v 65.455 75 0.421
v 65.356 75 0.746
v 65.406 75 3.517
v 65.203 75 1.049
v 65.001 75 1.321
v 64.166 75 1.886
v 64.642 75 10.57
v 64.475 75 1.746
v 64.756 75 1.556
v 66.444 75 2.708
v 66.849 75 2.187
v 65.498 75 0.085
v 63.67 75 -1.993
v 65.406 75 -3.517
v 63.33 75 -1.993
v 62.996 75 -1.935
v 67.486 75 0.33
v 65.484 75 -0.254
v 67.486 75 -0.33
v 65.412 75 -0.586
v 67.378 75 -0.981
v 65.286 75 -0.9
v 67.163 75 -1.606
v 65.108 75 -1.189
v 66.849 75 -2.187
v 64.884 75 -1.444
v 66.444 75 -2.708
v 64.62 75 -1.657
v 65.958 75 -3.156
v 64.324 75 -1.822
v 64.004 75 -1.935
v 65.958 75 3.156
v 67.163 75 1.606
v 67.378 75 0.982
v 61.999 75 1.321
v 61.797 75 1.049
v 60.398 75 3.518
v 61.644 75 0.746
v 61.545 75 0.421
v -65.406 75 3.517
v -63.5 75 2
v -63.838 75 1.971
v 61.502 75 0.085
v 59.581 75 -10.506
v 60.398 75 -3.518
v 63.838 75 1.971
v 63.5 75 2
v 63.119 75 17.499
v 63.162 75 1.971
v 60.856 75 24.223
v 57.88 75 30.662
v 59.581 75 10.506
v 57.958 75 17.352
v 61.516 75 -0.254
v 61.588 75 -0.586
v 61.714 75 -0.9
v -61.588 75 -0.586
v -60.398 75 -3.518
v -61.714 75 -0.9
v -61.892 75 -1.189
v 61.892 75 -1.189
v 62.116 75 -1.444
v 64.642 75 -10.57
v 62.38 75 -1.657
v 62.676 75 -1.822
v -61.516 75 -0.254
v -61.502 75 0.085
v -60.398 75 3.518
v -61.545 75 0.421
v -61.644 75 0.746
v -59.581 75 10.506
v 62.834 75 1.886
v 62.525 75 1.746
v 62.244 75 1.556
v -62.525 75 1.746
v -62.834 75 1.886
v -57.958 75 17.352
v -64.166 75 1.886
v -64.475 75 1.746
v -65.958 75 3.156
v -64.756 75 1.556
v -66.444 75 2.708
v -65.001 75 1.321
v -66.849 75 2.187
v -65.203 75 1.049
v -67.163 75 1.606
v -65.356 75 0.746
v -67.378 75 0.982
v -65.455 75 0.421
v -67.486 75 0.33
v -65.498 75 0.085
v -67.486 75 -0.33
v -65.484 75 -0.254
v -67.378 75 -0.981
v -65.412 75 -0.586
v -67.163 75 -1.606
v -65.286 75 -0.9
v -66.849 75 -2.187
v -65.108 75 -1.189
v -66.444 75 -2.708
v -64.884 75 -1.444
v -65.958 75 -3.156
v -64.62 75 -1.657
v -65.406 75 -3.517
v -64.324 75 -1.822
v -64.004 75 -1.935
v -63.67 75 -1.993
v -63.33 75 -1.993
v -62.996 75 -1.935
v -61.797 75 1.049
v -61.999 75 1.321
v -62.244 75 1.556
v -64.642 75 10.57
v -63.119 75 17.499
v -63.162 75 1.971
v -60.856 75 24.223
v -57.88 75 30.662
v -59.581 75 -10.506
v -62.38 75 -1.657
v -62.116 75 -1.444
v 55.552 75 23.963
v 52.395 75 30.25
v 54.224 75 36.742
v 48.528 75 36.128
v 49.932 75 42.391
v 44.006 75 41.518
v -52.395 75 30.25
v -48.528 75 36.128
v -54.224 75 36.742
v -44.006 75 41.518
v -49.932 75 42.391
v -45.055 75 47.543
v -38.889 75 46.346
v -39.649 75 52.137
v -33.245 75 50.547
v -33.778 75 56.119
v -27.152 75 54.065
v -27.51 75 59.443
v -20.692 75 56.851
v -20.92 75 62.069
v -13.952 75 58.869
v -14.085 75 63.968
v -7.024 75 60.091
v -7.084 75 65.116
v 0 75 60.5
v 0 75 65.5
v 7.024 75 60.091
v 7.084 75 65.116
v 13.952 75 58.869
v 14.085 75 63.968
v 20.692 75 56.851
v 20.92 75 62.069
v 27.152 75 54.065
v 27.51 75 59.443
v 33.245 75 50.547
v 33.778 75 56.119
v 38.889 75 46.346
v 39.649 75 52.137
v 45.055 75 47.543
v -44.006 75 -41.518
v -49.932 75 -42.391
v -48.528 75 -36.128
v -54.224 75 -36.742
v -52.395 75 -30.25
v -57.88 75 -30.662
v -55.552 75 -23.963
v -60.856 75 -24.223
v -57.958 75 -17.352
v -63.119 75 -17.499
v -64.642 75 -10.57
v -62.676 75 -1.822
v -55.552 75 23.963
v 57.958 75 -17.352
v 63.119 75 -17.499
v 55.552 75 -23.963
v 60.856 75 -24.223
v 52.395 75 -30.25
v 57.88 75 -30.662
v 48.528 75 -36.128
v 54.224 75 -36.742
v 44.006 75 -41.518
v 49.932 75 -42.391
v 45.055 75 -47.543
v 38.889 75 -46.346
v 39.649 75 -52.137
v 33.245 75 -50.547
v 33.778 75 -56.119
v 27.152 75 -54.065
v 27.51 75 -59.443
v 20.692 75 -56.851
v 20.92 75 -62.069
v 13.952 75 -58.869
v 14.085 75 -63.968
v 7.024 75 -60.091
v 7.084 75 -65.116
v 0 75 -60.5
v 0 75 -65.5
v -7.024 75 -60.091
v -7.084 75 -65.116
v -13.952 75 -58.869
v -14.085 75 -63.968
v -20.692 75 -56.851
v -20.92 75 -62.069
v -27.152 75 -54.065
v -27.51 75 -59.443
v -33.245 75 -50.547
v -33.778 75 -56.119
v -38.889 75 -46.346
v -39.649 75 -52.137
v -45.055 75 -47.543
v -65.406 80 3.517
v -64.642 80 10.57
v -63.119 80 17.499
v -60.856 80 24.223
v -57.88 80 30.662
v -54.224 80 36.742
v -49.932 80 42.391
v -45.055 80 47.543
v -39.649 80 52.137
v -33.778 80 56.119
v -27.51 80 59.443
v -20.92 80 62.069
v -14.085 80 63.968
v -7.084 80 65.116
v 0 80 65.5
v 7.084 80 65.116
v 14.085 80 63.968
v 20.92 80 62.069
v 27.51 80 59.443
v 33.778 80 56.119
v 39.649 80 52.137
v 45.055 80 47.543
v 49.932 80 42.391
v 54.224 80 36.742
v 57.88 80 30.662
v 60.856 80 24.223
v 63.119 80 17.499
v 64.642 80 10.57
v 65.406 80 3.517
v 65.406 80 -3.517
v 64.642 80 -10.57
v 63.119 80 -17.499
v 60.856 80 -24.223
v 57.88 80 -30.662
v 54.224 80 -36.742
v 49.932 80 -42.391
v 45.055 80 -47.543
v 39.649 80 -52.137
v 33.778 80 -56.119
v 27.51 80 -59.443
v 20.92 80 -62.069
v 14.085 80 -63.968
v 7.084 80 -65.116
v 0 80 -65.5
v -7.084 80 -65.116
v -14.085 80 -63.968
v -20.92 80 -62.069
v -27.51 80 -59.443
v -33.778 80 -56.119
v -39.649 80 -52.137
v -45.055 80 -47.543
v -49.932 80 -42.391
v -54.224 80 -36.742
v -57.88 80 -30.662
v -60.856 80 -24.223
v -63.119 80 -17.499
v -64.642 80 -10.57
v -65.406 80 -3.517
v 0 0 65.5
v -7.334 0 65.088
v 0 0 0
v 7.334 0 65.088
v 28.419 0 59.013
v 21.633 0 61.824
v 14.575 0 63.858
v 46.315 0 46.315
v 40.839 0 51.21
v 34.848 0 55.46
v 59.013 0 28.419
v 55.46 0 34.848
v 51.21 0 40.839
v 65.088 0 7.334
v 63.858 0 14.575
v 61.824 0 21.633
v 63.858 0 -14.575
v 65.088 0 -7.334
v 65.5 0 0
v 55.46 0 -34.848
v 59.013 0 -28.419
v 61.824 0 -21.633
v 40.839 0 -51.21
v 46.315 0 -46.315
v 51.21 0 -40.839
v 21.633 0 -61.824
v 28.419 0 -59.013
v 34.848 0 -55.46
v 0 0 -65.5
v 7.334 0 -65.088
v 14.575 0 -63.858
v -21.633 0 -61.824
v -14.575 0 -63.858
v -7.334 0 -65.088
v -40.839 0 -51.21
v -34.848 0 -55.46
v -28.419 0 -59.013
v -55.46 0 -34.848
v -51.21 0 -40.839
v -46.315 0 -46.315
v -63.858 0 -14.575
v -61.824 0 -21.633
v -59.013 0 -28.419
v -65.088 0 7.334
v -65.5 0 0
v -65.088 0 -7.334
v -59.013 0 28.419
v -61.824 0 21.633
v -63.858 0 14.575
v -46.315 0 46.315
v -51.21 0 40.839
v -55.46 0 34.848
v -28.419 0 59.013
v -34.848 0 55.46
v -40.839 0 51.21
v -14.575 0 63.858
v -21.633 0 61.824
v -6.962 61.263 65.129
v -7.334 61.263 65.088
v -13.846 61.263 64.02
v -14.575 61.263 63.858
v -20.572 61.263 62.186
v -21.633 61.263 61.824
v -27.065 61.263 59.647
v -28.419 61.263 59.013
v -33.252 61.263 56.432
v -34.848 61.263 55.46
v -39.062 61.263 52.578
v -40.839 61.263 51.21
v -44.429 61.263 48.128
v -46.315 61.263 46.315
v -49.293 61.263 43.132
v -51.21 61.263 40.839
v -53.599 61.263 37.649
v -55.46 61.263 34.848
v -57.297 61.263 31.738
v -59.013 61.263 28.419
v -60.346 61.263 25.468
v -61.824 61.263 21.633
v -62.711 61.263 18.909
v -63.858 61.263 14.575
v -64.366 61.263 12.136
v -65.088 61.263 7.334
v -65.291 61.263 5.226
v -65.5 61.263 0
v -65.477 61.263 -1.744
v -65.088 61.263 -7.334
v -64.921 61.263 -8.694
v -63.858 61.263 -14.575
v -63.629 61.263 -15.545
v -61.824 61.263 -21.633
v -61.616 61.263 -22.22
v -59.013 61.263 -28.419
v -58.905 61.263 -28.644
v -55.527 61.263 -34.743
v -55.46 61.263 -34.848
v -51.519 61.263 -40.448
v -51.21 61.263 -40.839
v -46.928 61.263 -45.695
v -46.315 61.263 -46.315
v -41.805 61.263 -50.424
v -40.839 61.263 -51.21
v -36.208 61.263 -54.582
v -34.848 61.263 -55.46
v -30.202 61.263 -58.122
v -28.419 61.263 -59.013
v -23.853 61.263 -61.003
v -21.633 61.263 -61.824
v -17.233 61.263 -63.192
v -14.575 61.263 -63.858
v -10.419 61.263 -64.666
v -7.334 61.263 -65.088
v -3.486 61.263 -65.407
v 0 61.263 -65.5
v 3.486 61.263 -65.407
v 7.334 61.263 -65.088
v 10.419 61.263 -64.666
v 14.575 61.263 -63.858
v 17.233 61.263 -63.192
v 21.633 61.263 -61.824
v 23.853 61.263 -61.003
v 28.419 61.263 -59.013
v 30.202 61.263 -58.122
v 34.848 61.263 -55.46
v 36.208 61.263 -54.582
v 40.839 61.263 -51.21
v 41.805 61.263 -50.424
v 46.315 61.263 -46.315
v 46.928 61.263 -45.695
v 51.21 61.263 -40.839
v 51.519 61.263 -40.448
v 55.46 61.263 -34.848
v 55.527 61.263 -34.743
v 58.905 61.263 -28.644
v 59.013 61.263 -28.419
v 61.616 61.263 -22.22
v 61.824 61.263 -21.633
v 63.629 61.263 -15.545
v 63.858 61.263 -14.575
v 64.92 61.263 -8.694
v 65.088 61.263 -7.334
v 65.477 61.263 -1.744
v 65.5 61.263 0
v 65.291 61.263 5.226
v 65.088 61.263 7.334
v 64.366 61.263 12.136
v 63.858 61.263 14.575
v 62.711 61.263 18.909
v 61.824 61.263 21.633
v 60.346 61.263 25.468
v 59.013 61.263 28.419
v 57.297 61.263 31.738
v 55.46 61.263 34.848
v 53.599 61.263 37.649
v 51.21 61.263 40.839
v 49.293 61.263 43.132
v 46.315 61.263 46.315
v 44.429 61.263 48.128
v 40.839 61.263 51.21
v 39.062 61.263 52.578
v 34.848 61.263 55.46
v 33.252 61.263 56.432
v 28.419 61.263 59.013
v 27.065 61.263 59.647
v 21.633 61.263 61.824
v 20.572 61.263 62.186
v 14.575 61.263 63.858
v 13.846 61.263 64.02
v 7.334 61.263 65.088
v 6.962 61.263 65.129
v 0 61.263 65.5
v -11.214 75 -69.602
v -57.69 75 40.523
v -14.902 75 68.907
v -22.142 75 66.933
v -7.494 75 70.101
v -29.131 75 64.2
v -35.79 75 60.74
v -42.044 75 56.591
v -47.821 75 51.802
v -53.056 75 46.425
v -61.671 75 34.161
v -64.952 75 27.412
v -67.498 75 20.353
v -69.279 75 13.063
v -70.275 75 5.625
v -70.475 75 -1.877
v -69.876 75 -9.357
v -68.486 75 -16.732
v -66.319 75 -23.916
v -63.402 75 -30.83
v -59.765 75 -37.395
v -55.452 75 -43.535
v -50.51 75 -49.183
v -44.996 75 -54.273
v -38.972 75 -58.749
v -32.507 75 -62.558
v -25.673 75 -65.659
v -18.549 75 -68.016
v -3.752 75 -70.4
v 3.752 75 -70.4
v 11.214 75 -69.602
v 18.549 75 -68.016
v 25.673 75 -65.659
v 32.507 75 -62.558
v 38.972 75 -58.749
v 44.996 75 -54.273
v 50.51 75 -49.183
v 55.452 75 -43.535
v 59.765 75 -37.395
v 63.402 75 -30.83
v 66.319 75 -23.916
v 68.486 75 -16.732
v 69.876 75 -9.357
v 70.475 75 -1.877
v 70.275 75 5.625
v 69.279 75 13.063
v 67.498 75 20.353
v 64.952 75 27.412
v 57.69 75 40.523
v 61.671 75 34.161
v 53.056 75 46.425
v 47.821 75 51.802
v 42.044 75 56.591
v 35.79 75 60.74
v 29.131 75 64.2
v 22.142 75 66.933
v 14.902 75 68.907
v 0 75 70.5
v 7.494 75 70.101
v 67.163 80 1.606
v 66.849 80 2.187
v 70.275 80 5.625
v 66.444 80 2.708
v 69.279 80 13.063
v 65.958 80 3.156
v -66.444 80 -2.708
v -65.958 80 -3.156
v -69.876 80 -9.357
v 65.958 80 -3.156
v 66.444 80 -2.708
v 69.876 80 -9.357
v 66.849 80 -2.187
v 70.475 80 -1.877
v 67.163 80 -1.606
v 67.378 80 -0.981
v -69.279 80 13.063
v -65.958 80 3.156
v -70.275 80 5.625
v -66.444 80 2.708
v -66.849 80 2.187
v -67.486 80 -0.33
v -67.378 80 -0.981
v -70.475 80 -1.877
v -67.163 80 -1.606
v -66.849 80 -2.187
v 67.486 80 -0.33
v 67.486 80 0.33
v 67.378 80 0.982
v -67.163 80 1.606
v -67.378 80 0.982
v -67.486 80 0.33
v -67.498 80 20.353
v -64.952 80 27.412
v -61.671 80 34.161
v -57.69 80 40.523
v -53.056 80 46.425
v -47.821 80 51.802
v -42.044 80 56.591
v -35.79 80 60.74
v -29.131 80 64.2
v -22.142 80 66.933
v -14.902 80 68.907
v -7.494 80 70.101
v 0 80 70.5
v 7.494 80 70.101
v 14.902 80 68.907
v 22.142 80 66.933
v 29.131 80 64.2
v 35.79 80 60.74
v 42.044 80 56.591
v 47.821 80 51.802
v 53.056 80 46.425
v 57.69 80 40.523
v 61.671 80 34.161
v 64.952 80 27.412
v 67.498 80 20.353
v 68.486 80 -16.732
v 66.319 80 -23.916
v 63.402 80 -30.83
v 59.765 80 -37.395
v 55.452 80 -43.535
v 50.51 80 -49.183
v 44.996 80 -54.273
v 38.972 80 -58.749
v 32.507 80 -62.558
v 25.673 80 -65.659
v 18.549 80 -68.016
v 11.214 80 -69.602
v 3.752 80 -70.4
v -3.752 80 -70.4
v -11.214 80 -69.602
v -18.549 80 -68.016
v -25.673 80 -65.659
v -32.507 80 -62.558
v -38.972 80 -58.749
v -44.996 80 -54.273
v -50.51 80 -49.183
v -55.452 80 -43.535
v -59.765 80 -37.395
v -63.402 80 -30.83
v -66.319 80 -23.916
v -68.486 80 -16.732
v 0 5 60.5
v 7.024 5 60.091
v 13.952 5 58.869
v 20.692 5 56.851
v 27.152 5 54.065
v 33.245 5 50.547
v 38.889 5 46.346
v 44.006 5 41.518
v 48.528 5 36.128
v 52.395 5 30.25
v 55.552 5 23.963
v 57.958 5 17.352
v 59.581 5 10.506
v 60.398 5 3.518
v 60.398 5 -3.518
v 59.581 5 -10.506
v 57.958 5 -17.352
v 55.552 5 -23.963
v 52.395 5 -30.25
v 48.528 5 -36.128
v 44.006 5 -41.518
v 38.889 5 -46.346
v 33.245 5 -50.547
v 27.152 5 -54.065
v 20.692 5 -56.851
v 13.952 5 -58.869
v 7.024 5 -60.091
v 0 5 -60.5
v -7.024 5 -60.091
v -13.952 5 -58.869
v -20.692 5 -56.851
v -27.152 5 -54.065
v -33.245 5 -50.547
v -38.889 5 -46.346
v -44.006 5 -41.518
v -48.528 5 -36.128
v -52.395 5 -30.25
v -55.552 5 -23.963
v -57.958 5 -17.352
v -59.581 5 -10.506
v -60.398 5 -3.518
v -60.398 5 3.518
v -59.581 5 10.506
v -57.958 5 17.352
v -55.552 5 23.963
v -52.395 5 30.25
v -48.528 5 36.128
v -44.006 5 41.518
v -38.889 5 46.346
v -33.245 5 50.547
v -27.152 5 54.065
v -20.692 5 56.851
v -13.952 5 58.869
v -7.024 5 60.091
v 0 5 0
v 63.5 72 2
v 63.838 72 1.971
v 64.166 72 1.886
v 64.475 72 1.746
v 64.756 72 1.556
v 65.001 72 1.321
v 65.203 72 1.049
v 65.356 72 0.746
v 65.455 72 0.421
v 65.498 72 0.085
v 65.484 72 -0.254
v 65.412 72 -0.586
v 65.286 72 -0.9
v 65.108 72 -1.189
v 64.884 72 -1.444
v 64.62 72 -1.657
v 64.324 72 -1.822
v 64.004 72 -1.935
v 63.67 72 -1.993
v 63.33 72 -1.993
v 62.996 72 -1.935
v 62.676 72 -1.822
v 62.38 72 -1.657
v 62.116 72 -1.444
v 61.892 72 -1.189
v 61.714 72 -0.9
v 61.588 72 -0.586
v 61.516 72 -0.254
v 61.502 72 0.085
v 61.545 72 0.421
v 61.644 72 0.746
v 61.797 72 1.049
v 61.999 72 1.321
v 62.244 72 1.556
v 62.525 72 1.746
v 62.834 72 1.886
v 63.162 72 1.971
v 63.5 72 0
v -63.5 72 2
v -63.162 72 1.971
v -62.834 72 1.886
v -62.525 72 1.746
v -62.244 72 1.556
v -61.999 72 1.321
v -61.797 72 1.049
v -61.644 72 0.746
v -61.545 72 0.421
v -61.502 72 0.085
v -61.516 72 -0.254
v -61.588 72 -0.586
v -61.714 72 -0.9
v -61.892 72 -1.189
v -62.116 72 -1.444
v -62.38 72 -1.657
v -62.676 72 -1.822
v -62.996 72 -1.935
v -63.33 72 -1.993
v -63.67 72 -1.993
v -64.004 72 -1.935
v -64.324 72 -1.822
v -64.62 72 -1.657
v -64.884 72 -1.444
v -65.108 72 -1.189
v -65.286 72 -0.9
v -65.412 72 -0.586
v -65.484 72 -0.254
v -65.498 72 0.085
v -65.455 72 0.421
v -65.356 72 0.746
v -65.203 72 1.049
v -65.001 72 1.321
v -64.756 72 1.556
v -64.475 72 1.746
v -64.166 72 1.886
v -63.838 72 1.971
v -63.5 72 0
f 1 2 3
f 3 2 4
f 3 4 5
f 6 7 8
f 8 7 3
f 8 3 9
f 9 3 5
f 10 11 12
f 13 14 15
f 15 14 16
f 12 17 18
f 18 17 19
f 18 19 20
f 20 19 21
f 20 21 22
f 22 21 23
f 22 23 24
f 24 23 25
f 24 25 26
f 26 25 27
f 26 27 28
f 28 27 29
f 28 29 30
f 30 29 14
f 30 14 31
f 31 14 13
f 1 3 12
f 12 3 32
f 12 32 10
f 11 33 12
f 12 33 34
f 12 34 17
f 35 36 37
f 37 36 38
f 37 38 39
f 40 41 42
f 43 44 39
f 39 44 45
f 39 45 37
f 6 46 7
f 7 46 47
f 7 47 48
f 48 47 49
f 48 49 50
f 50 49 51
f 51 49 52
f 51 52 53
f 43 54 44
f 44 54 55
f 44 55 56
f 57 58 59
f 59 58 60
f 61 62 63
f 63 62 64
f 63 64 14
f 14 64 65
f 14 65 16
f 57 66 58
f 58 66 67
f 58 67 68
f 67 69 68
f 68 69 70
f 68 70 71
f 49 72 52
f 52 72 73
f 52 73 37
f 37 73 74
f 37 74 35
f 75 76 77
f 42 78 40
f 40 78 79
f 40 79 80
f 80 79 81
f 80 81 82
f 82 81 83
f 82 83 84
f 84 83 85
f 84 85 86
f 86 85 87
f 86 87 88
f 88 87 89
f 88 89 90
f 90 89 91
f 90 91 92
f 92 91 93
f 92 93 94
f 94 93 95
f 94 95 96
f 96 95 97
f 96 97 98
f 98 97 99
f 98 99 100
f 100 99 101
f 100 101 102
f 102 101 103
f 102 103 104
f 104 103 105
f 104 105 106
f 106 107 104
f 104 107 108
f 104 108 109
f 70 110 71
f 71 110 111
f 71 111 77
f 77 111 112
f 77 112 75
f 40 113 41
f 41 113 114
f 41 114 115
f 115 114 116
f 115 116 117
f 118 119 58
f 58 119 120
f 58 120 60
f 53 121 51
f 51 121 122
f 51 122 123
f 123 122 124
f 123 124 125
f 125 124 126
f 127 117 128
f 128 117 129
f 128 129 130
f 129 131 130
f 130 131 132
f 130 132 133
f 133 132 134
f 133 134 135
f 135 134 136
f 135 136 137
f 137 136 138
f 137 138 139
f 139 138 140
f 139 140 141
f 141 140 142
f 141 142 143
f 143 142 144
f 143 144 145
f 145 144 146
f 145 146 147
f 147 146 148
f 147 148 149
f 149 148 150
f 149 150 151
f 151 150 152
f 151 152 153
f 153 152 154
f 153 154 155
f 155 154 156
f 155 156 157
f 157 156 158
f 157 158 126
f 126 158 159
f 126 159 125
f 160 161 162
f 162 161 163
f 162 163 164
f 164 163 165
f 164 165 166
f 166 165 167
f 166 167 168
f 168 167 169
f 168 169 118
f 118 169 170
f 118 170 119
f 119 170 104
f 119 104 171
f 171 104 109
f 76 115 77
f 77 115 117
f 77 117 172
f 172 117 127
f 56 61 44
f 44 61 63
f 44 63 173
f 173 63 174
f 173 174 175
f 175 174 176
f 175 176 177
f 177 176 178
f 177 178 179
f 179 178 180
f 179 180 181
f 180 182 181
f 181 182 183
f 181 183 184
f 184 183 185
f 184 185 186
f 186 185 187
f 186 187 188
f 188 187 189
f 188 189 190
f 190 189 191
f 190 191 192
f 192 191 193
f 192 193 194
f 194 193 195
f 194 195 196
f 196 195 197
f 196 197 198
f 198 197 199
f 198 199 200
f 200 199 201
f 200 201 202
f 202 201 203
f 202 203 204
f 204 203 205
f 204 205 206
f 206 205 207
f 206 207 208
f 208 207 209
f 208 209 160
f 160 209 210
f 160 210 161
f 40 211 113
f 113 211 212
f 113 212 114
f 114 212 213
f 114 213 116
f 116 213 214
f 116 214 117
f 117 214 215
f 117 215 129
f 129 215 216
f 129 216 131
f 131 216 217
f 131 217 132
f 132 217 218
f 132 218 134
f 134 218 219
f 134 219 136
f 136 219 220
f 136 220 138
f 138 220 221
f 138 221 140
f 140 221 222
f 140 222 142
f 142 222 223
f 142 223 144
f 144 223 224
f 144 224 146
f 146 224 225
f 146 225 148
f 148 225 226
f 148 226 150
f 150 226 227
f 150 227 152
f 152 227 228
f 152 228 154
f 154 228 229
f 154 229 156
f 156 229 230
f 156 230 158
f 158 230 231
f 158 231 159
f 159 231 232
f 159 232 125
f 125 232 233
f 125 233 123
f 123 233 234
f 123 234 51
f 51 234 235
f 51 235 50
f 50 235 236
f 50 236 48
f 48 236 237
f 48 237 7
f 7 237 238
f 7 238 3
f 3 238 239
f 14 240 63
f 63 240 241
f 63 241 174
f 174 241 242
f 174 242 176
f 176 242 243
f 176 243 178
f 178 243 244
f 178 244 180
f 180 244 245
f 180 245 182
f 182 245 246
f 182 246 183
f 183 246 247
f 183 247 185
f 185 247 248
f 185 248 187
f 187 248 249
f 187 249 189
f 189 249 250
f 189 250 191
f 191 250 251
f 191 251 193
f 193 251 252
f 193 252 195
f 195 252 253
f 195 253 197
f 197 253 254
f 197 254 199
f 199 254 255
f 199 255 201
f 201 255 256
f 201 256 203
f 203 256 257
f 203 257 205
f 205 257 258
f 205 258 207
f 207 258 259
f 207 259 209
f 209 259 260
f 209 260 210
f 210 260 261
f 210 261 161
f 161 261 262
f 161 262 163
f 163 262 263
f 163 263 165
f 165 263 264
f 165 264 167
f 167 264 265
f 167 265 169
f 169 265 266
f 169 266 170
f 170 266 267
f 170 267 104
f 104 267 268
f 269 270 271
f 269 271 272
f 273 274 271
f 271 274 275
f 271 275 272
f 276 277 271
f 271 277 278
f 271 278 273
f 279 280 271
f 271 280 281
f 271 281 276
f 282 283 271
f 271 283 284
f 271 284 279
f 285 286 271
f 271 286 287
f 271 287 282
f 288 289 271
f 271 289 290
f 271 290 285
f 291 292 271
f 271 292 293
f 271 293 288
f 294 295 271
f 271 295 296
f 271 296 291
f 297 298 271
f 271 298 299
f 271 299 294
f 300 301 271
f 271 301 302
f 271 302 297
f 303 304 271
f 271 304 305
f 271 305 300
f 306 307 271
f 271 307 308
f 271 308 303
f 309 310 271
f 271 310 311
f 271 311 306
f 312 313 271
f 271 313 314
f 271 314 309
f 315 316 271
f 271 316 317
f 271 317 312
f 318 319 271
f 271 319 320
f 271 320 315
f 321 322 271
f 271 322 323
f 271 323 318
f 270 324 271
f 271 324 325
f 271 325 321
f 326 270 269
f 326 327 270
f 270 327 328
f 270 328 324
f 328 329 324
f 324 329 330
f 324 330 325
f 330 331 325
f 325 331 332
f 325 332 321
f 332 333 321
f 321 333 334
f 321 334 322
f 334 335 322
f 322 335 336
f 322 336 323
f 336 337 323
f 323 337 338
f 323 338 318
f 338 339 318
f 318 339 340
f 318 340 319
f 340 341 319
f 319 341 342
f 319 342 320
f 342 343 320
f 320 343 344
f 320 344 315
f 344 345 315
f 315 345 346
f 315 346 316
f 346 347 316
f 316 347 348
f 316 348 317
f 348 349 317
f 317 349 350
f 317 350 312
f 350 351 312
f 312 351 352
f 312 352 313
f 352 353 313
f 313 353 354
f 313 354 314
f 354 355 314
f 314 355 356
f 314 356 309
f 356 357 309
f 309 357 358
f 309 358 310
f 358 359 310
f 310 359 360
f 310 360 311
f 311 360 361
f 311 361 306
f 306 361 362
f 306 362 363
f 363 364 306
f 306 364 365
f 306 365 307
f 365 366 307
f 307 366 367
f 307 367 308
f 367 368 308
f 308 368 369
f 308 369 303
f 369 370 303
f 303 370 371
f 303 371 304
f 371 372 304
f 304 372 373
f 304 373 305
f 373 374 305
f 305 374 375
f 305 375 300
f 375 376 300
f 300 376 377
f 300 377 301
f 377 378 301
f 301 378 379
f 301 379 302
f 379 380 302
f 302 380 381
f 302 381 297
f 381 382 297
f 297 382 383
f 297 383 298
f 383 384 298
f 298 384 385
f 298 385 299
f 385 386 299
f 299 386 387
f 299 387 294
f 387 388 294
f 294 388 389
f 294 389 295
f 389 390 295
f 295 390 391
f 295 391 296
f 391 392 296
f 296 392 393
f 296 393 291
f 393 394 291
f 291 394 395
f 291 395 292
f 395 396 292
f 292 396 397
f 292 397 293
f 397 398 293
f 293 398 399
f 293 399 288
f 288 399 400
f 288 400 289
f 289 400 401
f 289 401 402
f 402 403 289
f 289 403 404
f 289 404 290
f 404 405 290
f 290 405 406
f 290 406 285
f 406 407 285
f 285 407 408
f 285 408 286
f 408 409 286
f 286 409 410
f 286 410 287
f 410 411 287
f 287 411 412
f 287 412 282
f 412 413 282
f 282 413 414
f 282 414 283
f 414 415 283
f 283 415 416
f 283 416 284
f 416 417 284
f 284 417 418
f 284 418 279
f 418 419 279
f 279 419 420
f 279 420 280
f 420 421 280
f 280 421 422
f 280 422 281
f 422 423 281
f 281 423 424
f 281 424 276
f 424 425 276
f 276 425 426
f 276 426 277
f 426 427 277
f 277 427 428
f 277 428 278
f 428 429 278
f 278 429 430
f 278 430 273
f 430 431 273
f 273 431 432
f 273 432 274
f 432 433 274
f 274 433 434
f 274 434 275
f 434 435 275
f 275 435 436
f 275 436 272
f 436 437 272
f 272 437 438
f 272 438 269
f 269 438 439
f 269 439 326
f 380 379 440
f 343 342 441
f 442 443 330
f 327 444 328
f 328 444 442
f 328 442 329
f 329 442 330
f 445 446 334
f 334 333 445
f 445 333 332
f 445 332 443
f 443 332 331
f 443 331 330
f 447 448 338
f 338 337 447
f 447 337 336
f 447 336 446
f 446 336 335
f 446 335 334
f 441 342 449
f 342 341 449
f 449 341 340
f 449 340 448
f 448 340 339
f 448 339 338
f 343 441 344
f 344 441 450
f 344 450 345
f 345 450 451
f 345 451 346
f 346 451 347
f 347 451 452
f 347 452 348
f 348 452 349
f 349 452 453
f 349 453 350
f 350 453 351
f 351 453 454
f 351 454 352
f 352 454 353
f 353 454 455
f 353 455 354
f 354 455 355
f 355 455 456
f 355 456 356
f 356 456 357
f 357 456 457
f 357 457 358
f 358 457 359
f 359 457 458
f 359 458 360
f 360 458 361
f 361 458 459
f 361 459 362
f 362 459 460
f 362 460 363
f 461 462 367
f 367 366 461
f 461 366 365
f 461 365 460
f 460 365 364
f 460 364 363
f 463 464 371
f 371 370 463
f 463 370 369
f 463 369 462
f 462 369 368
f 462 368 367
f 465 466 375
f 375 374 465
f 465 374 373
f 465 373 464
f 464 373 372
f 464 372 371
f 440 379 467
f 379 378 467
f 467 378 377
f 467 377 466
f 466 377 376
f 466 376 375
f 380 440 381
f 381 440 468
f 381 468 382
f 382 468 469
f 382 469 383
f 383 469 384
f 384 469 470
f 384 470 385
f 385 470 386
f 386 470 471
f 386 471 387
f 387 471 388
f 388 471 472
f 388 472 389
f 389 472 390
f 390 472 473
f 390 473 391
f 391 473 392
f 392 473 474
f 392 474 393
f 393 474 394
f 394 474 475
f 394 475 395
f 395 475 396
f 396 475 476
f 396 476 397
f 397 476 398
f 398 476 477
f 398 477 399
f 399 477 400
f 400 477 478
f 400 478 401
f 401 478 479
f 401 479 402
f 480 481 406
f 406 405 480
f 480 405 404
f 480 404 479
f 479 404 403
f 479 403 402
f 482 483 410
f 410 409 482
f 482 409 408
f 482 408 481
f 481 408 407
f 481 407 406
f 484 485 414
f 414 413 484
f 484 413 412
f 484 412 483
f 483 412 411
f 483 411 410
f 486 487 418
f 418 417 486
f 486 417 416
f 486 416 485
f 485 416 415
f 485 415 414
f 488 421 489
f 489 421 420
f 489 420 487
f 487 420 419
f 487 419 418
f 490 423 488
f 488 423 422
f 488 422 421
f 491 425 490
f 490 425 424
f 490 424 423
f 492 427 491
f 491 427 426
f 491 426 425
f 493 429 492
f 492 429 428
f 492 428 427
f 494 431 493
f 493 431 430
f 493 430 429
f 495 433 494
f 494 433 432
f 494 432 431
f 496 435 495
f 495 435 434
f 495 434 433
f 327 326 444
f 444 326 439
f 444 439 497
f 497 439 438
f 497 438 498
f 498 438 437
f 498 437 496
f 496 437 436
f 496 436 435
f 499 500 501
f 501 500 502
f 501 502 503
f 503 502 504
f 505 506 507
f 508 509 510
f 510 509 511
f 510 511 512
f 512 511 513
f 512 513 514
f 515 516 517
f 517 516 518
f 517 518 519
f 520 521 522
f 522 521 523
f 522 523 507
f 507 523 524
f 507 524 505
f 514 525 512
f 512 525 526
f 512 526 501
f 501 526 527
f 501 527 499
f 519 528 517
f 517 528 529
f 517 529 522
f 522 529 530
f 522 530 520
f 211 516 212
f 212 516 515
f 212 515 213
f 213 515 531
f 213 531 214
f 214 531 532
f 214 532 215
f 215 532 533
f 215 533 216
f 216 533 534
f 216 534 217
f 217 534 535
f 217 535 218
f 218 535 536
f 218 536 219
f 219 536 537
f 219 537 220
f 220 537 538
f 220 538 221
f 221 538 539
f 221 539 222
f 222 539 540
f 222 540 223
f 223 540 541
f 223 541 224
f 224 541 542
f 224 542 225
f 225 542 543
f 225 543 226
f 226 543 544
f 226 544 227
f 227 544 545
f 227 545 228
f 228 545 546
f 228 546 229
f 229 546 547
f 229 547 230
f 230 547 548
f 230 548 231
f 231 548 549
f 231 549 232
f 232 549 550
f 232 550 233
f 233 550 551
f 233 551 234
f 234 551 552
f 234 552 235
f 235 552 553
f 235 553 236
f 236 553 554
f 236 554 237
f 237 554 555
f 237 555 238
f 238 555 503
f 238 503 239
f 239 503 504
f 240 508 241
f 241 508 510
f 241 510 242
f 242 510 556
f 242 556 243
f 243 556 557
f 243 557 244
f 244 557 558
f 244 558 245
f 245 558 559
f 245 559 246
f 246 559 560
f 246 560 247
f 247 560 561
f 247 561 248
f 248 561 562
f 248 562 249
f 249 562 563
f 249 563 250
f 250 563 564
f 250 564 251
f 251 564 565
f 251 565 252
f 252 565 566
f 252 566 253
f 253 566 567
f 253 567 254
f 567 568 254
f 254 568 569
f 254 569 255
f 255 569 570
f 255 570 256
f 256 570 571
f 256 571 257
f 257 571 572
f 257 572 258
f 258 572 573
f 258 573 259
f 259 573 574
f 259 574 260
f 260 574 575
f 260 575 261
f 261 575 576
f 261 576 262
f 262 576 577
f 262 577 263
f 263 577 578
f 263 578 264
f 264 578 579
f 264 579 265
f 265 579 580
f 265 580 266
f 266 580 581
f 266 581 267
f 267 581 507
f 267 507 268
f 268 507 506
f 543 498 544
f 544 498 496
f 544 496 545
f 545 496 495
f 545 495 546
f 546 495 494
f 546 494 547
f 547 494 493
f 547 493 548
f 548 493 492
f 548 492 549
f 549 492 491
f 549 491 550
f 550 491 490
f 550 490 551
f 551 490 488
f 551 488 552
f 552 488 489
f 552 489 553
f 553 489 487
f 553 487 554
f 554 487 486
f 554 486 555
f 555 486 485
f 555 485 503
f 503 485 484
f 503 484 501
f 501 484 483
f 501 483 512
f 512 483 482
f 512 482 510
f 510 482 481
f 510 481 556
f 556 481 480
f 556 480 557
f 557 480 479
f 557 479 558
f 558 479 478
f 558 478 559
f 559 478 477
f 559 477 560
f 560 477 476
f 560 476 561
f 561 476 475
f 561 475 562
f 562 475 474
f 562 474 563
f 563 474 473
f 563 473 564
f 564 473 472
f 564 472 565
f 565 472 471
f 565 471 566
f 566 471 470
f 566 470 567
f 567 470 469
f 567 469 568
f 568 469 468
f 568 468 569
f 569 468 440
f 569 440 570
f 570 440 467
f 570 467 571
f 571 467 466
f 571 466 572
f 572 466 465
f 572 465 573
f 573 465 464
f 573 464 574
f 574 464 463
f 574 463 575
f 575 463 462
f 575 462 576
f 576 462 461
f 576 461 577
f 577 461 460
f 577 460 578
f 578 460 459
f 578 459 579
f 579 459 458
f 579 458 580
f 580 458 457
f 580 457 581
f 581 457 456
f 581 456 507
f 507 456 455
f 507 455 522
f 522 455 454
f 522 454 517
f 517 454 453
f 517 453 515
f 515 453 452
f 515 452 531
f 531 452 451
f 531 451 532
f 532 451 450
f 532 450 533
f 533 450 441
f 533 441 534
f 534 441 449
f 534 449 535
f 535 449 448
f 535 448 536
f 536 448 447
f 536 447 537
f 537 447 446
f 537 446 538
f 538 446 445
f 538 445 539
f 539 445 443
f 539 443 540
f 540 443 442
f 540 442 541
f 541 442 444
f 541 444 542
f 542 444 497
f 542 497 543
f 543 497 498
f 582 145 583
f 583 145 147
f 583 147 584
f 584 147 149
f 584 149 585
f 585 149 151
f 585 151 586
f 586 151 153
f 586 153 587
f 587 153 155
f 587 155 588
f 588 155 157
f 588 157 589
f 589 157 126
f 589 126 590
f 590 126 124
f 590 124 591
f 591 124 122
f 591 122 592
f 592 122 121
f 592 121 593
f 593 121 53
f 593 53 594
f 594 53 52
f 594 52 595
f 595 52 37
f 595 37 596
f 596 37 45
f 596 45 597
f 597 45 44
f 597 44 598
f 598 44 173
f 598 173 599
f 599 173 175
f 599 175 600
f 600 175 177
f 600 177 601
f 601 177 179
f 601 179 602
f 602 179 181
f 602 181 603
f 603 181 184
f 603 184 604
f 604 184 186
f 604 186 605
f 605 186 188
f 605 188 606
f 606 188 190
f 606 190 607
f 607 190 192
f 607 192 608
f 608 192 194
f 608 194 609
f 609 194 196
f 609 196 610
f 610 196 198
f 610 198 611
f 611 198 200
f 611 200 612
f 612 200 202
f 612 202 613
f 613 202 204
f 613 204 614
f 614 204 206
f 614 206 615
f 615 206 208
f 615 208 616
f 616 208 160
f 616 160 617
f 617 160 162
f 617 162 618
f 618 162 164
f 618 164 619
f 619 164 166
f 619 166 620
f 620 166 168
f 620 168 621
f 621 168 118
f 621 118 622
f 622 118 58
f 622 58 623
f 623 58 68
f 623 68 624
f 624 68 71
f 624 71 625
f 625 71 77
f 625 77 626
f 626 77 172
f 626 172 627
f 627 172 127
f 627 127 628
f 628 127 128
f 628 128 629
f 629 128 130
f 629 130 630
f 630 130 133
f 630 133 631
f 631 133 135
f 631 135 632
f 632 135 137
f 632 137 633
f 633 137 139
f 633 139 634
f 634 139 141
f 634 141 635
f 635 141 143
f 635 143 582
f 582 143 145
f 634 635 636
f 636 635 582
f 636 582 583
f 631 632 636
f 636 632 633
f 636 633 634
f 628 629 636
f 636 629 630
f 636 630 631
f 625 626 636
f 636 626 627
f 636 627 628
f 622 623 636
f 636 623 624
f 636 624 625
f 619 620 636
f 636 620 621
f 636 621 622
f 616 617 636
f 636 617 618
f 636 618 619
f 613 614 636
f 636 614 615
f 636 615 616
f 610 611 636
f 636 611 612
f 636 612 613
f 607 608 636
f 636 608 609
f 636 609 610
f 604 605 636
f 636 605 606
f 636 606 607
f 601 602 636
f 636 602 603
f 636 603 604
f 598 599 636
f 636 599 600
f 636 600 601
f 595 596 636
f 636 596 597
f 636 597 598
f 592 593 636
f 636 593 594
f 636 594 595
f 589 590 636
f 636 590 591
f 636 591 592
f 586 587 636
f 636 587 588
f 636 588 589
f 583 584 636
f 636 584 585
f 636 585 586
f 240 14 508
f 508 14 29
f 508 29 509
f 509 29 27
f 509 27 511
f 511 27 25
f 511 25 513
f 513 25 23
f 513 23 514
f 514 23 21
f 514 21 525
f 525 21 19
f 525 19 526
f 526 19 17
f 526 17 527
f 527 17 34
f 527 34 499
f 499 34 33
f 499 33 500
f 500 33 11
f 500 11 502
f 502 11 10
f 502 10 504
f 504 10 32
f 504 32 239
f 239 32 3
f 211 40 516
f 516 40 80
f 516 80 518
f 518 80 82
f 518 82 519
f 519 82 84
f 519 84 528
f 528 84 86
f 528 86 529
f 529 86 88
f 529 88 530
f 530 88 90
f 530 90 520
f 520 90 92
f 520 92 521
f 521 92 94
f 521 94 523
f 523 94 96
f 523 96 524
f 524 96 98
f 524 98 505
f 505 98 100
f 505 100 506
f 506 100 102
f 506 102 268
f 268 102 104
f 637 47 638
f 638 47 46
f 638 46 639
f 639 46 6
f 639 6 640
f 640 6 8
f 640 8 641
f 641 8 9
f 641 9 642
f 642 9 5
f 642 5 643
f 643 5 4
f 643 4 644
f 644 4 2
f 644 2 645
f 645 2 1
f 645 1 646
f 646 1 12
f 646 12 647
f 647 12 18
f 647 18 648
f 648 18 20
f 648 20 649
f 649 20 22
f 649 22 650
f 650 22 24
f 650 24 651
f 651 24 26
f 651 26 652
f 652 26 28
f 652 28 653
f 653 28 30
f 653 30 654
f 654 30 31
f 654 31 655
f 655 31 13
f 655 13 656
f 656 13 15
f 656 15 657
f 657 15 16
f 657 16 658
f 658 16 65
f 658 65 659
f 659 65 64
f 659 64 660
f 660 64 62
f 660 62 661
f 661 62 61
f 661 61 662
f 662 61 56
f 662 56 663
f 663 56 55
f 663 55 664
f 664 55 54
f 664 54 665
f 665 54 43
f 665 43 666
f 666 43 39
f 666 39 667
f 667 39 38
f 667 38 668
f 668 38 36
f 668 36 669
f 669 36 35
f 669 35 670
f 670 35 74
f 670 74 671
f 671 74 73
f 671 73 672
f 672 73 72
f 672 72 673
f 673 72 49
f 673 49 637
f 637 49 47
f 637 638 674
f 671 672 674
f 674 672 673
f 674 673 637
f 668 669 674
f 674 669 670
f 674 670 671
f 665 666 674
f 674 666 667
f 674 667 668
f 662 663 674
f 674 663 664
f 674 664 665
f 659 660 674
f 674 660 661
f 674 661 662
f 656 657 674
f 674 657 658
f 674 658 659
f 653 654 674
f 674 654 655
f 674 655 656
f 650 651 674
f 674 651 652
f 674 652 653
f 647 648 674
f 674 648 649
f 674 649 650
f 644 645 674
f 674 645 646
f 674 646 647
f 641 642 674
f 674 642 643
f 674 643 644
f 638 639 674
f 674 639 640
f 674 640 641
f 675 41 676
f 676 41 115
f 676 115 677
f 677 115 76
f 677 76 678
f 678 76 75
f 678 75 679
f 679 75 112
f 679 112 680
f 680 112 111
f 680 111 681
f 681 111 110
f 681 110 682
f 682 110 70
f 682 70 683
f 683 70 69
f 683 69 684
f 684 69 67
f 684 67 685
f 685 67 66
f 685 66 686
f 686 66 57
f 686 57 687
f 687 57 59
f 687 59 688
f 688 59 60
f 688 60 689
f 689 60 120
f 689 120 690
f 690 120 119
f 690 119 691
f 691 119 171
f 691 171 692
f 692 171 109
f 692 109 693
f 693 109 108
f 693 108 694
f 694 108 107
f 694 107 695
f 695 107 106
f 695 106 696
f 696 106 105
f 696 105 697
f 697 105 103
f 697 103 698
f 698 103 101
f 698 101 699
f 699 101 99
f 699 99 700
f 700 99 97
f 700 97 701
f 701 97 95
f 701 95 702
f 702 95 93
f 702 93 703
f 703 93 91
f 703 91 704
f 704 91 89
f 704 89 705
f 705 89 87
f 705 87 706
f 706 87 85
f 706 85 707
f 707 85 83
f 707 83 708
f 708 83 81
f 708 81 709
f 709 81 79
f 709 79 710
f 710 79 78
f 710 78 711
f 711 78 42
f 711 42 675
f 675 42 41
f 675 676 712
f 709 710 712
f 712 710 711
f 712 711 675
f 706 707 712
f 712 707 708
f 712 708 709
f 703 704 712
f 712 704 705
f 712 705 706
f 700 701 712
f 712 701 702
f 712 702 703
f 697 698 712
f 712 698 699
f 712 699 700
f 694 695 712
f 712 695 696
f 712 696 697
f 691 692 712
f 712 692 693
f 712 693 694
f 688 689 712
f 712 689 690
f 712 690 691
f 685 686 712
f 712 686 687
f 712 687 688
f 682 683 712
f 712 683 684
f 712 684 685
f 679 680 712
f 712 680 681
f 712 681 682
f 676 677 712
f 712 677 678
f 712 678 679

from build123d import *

# Parameters (mm, degrees)
SKETCH2_R          = 4
SKETCH2_R_2        = 2
CUT_EXTRUDE1_DEPTH = 125.761772992
SKETCH2_4_R        = 2
CUT_EXTRUDE3_DEPTH = 3


with BuildPart() as part:
    # Sketch1 → Revolve1 (revolve)
    with BuildSketch(Plane.XY):
        Polygon((-65.5, 0), (0, 0), (0, 5), (-60.5, 5), (-60.5, 75), (-65.5, 75), (-65.5, 80), (-70.5, 80), (-70.5, 75), (-65.5, 61.262612903), align=None)
    revolve(axis=Axis((0, 5, 0), (0, -1, 0)))

    # Sketch2 → Cut-Extrude1 (cut, through all)
    # profile 1 of 2: a face of its own
    with BuildSketch(Plane(origin=(0, 75, 0), x_dir=(1, 0, 0), z_dir=(0, 1, 0))):
        with Locations((-63.5, 0)):
            Circle(SKETCH2_R)
        with Locations((-63.5, 0)):
            Circle(SKETCH2_R_2, mode=Mode.SUBTRACT)
    # profile 2 of 2: a face of its own
    with BuildSketch(Plane(origin=(0, 75, 0), x_dir=(1, 0, 0), z_dir=(0, 1, 0))):
        with Locations((63.5, 0)):
            Circle(SKETCH2_R)
        with Locations((63.5, 0)):
            Circle(SKETCH2_R_2, mode=Mode.SUBTRACT)
    extrude(amount=CUT_EXTRUDE1_DEPTH, mode=Mode.SUBTRACT)

    # Sketch2<4> → Cut-Extrude3 (cut)
    with BuildSketch(Plane(origin=(0, 75, 0), x_dir=(1, 0, 0), z_dir=(0, 1, 0))):
        with Locations((-63.5, 0)):
            Circle(SKETCH2_4_R)
        with Locations((63.5, 0)):
            Circle(SKETCH2_4_R)
    extrude(amount=-CUT_EXTRUDE3_DEPTH, mode=Mode.SUBTRACT)


solid = part.part
